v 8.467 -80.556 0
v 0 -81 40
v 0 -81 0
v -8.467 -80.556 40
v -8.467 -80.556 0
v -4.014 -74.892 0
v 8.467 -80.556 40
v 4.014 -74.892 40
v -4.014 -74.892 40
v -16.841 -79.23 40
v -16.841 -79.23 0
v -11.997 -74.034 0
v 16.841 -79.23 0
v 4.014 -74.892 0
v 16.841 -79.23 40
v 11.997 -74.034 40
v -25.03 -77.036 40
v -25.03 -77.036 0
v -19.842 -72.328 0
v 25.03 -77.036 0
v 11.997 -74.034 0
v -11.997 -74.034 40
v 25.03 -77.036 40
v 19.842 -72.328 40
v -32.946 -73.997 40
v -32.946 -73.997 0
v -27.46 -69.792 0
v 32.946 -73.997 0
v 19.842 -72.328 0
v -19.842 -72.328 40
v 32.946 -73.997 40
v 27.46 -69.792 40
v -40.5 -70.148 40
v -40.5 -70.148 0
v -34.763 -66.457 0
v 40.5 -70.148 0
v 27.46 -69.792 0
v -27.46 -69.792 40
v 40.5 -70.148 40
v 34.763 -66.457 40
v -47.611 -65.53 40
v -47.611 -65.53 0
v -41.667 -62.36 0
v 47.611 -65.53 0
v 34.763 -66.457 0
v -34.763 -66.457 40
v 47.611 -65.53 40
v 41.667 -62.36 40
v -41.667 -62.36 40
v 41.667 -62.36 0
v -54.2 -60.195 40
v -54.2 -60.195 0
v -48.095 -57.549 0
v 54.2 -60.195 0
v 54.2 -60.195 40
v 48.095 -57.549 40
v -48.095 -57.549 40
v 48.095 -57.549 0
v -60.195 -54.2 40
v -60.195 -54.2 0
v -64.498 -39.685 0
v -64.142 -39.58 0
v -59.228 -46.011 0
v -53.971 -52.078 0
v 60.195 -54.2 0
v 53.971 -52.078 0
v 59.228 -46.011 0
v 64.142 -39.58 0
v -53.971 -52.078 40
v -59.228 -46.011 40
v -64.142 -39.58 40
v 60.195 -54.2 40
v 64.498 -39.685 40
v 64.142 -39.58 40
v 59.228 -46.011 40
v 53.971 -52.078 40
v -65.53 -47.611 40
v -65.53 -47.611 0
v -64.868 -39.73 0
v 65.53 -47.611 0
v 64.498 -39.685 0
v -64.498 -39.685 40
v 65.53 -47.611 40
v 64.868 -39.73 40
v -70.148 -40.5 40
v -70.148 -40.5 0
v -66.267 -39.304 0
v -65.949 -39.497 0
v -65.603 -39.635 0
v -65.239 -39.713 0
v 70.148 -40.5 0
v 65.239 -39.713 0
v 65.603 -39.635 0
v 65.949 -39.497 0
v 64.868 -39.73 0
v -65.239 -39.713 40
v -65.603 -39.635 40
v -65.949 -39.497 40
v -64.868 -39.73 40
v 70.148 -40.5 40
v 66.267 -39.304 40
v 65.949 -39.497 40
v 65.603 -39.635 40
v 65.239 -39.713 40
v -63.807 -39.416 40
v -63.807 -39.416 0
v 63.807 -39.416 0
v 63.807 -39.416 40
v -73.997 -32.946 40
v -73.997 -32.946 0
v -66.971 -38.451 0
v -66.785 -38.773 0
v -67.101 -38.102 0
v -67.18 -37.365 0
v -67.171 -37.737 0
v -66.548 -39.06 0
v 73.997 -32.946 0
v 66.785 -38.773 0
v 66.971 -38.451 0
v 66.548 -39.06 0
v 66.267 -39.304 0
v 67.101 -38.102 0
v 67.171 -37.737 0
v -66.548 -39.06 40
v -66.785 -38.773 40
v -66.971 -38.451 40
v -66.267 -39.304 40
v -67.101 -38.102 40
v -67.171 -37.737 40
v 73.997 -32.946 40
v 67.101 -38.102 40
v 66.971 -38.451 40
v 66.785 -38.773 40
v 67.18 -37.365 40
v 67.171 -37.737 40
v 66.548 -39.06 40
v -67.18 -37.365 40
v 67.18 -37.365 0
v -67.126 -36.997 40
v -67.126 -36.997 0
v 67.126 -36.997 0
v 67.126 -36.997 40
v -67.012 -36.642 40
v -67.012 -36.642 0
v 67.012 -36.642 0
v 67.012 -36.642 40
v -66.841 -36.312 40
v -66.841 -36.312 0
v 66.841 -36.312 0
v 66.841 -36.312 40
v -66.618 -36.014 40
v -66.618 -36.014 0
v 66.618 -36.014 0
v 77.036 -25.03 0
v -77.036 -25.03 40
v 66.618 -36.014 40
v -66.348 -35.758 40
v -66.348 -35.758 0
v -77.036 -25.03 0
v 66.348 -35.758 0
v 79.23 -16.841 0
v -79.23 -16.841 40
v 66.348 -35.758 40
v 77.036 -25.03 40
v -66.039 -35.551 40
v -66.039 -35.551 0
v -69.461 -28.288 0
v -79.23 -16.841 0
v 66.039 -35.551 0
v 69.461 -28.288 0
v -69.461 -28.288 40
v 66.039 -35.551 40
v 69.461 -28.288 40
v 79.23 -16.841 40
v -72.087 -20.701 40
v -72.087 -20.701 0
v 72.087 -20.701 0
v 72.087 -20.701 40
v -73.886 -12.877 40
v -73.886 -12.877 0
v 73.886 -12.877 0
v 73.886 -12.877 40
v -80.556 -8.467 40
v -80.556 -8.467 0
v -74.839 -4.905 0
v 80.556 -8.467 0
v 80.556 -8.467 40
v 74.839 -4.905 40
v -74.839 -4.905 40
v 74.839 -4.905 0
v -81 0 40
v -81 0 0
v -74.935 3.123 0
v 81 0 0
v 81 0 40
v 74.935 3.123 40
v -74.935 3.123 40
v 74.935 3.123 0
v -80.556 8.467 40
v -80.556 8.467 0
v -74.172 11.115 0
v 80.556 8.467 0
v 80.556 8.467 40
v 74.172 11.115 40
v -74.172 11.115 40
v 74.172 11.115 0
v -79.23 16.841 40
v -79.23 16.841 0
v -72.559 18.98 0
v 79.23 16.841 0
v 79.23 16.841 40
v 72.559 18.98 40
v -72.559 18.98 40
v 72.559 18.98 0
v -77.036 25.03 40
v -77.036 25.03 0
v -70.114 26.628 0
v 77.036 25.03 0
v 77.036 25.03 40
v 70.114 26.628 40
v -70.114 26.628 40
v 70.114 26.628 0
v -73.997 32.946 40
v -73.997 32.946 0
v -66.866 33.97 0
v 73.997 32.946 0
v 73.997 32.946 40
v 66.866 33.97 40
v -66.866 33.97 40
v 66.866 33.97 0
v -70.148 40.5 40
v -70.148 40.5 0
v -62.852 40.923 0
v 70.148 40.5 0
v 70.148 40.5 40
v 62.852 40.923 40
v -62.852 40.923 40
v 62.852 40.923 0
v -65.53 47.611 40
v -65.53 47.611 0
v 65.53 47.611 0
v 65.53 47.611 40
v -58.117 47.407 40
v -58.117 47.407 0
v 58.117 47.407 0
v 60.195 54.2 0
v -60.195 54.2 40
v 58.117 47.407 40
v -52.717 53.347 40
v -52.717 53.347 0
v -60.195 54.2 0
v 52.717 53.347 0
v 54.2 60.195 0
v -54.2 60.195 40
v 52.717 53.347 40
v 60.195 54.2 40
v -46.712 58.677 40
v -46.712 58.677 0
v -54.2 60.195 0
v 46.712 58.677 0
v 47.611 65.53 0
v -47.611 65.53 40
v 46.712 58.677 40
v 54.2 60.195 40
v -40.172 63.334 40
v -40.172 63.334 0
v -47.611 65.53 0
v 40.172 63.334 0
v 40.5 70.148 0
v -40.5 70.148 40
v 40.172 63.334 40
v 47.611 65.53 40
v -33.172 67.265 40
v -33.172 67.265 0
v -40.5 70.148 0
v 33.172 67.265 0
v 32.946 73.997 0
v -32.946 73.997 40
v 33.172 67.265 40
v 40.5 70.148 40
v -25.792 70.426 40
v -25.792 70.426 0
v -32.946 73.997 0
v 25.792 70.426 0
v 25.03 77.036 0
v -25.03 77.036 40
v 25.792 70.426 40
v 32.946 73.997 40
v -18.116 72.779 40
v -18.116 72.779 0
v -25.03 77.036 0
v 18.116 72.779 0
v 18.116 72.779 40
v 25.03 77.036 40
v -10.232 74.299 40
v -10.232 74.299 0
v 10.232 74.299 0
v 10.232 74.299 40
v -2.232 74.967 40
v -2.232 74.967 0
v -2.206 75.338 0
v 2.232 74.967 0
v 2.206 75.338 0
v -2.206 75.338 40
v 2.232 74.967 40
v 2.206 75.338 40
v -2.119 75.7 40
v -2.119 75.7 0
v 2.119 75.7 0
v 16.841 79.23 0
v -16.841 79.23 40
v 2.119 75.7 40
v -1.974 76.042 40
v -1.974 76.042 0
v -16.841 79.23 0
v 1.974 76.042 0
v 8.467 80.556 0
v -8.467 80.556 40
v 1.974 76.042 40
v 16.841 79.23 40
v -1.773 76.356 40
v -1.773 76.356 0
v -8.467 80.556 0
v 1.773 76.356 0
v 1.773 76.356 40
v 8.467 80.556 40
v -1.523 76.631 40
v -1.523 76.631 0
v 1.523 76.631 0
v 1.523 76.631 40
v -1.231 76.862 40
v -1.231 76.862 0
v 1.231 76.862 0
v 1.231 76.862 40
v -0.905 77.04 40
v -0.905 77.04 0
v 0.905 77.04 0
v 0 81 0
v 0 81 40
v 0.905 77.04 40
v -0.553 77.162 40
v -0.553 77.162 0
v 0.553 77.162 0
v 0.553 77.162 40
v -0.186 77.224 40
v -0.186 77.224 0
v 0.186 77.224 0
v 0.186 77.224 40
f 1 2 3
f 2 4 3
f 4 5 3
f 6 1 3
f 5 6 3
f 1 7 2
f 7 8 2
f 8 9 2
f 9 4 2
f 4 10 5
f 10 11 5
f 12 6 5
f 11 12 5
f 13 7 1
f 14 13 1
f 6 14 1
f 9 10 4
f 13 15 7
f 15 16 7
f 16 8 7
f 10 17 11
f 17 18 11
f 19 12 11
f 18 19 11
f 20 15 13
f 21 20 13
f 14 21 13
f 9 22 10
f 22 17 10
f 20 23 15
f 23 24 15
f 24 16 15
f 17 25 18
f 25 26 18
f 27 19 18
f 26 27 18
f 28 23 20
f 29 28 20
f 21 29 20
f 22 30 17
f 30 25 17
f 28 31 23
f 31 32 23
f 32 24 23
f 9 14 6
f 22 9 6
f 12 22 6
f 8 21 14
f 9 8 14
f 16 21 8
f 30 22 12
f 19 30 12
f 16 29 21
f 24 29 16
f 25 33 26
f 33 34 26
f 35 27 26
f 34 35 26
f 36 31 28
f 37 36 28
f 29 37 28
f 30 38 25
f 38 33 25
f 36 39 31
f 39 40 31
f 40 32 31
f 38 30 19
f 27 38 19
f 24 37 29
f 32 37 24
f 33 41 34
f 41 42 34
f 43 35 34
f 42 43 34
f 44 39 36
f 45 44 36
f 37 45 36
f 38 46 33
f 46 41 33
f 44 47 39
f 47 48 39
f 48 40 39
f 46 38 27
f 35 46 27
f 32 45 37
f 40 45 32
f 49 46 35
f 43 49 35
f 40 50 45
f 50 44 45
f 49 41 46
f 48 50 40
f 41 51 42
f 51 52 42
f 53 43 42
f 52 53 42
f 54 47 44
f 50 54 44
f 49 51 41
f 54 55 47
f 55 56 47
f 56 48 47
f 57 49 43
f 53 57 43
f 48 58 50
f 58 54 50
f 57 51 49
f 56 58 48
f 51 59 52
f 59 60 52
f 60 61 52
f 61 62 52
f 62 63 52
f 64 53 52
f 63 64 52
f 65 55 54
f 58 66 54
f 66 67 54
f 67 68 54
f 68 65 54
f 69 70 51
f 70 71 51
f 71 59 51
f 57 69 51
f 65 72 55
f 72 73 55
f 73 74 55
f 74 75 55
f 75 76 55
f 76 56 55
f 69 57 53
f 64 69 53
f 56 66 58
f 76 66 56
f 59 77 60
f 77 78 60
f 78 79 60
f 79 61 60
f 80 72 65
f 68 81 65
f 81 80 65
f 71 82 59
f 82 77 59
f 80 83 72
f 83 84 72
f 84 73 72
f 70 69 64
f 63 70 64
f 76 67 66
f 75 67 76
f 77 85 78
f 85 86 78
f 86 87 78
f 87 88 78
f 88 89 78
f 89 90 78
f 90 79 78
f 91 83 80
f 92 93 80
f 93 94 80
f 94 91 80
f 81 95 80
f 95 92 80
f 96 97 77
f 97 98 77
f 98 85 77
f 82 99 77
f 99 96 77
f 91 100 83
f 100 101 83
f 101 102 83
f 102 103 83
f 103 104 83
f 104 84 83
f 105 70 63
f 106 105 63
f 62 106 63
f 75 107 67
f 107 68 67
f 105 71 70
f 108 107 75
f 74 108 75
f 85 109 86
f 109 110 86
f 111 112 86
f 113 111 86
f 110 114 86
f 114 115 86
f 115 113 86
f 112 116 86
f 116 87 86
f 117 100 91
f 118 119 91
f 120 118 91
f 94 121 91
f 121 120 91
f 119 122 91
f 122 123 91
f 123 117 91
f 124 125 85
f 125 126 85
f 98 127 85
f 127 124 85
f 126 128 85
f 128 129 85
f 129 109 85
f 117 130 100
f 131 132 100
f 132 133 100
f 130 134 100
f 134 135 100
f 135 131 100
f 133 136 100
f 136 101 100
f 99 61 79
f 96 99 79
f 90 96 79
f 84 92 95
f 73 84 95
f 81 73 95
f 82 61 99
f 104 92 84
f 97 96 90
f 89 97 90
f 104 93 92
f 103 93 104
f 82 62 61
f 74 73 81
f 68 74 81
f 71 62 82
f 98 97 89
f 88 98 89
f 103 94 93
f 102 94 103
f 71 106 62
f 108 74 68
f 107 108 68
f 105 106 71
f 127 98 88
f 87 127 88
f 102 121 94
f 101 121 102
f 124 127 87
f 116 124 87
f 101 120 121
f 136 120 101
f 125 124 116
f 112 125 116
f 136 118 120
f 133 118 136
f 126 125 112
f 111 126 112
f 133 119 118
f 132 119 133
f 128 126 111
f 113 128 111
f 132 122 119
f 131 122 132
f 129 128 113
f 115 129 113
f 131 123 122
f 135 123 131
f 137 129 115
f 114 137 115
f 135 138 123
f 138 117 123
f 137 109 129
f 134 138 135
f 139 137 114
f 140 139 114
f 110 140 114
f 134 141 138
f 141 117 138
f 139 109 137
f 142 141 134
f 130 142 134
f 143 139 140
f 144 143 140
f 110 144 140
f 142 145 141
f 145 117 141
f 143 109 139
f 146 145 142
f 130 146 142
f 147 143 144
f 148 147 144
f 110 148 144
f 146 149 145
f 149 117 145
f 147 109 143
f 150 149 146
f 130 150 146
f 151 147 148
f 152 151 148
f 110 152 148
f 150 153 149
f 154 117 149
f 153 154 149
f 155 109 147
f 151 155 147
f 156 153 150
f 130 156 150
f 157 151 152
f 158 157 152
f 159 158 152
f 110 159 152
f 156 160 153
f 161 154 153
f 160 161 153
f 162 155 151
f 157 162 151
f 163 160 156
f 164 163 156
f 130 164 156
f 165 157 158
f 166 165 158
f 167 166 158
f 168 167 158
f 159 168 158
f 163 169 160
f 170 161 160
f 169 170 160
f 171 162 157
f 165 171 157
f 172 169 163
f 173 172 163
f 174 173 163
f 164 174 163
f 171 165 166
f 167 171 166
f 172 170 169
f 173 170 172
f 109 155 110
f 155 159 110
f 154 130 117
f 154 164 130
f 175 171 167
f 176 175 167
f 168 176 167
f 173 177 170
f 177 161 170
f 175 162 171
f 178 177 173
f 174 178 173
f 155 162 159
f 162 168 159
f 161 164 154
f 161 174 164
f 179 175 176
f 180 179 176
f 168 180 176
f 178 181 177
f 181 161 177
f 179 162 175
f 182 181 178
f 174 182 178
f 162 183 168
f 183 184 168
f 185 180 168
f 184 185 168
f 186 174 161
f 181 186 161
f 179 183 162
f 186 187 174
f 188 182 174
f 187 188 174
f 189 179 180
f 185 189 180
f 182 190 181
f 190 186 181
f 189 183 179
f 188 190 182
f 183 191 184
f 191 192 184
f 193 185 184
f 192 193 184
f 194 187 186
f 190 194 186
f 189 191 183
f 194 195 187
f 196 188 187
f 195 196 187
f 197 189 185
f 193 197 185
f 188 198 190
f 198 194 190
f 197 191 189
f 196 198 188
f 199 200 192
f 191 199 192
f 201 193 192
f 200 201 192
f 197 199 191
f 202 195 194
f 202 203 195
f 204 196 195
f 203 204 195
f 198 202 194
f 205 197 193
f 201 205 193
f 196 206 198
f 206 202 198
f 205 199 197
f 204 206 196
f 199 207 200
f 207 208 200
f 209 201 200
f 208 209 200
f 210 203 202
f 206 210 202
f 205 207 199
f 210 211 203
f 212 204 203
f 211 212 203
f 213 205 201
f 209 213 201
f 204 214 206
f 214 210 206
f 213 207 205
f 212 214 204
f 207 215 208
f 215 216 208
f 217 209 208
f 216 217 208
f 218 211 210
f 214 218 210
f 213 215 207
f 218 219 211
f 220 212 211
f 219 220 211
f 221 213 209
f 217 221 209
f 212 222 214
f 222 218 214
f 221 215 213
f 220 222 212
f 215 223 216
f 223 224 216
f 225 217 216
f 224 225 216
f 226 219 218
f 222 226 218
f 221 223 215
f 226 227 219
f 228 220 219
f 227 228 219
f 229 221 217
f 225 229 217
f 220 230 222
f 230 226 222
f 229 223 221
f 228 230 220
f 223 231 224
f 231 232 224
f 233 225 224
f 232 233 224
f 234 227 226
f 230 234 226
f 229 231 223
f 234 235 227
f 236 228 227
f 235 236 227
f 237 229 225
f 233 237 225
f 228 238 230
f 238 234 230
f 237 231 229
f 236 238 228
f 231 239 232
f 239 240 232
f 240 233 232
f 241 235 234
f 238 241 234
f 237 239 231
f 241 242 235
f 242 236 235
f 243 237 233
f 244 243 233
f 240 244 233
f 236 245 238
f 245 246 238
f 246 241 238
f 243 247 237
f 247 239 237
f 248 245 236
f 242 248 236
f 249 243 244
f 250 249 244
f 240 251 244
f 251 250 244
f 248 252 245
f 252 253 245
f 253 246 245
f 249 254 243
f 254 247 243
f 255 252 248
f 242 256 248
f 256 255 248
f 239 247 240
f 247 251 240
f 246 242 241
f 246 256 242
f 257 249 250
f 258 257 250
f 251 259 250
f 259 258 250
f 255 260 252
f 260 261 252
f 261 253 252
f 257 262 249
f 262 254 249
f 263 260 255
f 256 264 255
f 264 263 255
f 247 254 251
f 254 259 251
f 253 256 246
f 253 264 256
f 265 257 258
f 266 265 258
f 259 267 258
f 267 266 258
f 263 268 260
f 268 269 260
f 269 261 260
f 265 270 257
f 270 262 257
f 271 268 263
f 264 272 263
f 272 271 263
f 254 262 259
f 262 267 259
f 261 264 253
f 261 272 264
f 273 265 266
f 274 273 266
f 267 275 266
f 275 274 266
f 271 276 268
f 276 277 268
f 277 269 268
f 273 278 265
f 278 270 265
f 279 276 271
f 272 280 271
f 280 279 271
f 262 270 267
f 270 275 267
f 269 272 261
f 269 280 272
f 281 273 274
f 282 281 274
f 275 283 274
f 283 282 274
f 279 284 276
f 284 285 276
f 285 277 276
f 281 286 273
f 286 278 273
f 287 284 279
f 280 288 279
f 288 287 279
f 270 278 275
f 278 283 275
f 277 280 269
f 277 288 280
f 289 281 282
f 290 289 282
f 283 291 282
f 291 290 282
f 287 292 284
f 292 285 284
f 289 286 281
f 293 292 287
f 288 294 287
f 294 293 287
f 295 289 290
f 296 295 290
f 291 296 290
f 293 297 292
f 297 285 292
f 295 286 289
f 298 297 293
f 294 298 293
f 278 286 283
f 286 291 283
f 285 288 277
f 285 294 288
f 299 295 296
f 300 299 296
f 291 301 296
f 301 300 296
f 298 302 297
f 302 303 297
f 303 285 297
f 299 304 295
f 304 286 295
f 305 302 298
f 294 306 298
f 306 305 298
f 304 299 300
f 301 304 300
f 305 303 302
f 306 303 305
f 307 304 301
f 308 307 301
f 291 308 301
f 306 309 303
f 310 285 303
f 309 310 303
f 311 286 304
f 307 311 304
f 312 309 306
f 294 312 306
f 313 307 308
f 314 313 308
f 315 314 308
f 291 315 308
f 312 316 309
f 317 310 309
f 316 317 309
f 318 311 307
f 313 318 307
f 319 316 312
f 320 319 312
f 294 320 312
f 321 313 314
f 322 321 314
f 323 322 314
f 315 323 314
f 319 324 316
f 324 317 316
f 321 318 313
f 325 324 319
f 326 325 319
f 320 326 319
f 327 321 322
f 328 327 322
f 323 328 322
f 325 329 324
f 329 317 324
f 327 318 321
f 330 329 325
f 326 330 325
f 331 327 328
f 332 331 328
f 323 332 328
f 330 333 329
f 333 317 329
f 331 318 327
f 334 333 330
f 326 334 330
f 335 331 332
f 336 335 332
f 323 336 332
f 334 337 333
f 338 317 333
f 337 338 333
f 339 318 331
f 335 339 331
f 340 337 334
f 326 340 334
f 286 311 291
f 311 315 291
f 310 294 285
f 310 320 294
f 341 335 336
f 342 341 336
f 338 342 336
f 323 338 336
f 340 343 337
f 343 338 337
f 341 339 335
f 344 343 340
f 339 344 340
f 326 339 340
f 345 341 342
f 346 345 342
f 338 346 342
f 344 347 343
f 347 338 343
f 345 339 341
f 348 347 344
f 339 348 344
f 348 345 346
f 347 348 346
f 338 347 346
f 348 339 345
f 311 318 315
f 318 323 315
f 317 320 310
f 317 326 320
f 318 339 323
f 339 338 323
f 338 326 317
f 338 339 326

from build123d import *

# Parameters (mm, degrees)
SKETCH1_R           = 81
BOSS_EXTRUDE1_DEPTH = 40


with BuildPart() as part:
    # Sketch1 → Boss-Extrude1 (new body)
    with BuildSketch(Plane.XY):
        Circle(SKETCH1_R)
        with BuildLine():
            ThreePointArc((2.231689825, 74.966789717), (53.816246324, 52.238028596), (75, 0))
            ThreePointArc((75, 0), (72.725250751, -18.331336645), (66.038989248, -35.550694777))
            ThreePointArc((66.038989248, -35.550694777), (66.876463055, -36.369681556), (67.1838422, -37.5))
            ThreePointArc((67.1838422, -37.5), (66.053461983, -39.441163372), (63.807299423, -39.416094941))
            ThreePointArc((63.807299423, -39.416094941), (0, -75), (-63.807299423, -39.416094941))
            ThreePointArc((-63.807299423, -39.416094941), (-66.884819353, -38.615968458), (-66.038989248, -35.550694777))
            ThreePointArc((-66.038989248, -35.550694777), (-64.951905284, 37.5), (-2.231689825, 74.966789717))
            ThreePointArc((-2.231689825, 74.966789717), (-0.016605601, 77.231875143), (2.231936916, 75))
            ThreePointArc((2.231936916, 75), (2.231875143, 74.983394399), (2.231689825, 74.966789717))
        make_face(mode=Mode.SUBTRACT)
    extrude(amount=BOSS_EXTRUDE1_DEPTH)


solid = part.part
